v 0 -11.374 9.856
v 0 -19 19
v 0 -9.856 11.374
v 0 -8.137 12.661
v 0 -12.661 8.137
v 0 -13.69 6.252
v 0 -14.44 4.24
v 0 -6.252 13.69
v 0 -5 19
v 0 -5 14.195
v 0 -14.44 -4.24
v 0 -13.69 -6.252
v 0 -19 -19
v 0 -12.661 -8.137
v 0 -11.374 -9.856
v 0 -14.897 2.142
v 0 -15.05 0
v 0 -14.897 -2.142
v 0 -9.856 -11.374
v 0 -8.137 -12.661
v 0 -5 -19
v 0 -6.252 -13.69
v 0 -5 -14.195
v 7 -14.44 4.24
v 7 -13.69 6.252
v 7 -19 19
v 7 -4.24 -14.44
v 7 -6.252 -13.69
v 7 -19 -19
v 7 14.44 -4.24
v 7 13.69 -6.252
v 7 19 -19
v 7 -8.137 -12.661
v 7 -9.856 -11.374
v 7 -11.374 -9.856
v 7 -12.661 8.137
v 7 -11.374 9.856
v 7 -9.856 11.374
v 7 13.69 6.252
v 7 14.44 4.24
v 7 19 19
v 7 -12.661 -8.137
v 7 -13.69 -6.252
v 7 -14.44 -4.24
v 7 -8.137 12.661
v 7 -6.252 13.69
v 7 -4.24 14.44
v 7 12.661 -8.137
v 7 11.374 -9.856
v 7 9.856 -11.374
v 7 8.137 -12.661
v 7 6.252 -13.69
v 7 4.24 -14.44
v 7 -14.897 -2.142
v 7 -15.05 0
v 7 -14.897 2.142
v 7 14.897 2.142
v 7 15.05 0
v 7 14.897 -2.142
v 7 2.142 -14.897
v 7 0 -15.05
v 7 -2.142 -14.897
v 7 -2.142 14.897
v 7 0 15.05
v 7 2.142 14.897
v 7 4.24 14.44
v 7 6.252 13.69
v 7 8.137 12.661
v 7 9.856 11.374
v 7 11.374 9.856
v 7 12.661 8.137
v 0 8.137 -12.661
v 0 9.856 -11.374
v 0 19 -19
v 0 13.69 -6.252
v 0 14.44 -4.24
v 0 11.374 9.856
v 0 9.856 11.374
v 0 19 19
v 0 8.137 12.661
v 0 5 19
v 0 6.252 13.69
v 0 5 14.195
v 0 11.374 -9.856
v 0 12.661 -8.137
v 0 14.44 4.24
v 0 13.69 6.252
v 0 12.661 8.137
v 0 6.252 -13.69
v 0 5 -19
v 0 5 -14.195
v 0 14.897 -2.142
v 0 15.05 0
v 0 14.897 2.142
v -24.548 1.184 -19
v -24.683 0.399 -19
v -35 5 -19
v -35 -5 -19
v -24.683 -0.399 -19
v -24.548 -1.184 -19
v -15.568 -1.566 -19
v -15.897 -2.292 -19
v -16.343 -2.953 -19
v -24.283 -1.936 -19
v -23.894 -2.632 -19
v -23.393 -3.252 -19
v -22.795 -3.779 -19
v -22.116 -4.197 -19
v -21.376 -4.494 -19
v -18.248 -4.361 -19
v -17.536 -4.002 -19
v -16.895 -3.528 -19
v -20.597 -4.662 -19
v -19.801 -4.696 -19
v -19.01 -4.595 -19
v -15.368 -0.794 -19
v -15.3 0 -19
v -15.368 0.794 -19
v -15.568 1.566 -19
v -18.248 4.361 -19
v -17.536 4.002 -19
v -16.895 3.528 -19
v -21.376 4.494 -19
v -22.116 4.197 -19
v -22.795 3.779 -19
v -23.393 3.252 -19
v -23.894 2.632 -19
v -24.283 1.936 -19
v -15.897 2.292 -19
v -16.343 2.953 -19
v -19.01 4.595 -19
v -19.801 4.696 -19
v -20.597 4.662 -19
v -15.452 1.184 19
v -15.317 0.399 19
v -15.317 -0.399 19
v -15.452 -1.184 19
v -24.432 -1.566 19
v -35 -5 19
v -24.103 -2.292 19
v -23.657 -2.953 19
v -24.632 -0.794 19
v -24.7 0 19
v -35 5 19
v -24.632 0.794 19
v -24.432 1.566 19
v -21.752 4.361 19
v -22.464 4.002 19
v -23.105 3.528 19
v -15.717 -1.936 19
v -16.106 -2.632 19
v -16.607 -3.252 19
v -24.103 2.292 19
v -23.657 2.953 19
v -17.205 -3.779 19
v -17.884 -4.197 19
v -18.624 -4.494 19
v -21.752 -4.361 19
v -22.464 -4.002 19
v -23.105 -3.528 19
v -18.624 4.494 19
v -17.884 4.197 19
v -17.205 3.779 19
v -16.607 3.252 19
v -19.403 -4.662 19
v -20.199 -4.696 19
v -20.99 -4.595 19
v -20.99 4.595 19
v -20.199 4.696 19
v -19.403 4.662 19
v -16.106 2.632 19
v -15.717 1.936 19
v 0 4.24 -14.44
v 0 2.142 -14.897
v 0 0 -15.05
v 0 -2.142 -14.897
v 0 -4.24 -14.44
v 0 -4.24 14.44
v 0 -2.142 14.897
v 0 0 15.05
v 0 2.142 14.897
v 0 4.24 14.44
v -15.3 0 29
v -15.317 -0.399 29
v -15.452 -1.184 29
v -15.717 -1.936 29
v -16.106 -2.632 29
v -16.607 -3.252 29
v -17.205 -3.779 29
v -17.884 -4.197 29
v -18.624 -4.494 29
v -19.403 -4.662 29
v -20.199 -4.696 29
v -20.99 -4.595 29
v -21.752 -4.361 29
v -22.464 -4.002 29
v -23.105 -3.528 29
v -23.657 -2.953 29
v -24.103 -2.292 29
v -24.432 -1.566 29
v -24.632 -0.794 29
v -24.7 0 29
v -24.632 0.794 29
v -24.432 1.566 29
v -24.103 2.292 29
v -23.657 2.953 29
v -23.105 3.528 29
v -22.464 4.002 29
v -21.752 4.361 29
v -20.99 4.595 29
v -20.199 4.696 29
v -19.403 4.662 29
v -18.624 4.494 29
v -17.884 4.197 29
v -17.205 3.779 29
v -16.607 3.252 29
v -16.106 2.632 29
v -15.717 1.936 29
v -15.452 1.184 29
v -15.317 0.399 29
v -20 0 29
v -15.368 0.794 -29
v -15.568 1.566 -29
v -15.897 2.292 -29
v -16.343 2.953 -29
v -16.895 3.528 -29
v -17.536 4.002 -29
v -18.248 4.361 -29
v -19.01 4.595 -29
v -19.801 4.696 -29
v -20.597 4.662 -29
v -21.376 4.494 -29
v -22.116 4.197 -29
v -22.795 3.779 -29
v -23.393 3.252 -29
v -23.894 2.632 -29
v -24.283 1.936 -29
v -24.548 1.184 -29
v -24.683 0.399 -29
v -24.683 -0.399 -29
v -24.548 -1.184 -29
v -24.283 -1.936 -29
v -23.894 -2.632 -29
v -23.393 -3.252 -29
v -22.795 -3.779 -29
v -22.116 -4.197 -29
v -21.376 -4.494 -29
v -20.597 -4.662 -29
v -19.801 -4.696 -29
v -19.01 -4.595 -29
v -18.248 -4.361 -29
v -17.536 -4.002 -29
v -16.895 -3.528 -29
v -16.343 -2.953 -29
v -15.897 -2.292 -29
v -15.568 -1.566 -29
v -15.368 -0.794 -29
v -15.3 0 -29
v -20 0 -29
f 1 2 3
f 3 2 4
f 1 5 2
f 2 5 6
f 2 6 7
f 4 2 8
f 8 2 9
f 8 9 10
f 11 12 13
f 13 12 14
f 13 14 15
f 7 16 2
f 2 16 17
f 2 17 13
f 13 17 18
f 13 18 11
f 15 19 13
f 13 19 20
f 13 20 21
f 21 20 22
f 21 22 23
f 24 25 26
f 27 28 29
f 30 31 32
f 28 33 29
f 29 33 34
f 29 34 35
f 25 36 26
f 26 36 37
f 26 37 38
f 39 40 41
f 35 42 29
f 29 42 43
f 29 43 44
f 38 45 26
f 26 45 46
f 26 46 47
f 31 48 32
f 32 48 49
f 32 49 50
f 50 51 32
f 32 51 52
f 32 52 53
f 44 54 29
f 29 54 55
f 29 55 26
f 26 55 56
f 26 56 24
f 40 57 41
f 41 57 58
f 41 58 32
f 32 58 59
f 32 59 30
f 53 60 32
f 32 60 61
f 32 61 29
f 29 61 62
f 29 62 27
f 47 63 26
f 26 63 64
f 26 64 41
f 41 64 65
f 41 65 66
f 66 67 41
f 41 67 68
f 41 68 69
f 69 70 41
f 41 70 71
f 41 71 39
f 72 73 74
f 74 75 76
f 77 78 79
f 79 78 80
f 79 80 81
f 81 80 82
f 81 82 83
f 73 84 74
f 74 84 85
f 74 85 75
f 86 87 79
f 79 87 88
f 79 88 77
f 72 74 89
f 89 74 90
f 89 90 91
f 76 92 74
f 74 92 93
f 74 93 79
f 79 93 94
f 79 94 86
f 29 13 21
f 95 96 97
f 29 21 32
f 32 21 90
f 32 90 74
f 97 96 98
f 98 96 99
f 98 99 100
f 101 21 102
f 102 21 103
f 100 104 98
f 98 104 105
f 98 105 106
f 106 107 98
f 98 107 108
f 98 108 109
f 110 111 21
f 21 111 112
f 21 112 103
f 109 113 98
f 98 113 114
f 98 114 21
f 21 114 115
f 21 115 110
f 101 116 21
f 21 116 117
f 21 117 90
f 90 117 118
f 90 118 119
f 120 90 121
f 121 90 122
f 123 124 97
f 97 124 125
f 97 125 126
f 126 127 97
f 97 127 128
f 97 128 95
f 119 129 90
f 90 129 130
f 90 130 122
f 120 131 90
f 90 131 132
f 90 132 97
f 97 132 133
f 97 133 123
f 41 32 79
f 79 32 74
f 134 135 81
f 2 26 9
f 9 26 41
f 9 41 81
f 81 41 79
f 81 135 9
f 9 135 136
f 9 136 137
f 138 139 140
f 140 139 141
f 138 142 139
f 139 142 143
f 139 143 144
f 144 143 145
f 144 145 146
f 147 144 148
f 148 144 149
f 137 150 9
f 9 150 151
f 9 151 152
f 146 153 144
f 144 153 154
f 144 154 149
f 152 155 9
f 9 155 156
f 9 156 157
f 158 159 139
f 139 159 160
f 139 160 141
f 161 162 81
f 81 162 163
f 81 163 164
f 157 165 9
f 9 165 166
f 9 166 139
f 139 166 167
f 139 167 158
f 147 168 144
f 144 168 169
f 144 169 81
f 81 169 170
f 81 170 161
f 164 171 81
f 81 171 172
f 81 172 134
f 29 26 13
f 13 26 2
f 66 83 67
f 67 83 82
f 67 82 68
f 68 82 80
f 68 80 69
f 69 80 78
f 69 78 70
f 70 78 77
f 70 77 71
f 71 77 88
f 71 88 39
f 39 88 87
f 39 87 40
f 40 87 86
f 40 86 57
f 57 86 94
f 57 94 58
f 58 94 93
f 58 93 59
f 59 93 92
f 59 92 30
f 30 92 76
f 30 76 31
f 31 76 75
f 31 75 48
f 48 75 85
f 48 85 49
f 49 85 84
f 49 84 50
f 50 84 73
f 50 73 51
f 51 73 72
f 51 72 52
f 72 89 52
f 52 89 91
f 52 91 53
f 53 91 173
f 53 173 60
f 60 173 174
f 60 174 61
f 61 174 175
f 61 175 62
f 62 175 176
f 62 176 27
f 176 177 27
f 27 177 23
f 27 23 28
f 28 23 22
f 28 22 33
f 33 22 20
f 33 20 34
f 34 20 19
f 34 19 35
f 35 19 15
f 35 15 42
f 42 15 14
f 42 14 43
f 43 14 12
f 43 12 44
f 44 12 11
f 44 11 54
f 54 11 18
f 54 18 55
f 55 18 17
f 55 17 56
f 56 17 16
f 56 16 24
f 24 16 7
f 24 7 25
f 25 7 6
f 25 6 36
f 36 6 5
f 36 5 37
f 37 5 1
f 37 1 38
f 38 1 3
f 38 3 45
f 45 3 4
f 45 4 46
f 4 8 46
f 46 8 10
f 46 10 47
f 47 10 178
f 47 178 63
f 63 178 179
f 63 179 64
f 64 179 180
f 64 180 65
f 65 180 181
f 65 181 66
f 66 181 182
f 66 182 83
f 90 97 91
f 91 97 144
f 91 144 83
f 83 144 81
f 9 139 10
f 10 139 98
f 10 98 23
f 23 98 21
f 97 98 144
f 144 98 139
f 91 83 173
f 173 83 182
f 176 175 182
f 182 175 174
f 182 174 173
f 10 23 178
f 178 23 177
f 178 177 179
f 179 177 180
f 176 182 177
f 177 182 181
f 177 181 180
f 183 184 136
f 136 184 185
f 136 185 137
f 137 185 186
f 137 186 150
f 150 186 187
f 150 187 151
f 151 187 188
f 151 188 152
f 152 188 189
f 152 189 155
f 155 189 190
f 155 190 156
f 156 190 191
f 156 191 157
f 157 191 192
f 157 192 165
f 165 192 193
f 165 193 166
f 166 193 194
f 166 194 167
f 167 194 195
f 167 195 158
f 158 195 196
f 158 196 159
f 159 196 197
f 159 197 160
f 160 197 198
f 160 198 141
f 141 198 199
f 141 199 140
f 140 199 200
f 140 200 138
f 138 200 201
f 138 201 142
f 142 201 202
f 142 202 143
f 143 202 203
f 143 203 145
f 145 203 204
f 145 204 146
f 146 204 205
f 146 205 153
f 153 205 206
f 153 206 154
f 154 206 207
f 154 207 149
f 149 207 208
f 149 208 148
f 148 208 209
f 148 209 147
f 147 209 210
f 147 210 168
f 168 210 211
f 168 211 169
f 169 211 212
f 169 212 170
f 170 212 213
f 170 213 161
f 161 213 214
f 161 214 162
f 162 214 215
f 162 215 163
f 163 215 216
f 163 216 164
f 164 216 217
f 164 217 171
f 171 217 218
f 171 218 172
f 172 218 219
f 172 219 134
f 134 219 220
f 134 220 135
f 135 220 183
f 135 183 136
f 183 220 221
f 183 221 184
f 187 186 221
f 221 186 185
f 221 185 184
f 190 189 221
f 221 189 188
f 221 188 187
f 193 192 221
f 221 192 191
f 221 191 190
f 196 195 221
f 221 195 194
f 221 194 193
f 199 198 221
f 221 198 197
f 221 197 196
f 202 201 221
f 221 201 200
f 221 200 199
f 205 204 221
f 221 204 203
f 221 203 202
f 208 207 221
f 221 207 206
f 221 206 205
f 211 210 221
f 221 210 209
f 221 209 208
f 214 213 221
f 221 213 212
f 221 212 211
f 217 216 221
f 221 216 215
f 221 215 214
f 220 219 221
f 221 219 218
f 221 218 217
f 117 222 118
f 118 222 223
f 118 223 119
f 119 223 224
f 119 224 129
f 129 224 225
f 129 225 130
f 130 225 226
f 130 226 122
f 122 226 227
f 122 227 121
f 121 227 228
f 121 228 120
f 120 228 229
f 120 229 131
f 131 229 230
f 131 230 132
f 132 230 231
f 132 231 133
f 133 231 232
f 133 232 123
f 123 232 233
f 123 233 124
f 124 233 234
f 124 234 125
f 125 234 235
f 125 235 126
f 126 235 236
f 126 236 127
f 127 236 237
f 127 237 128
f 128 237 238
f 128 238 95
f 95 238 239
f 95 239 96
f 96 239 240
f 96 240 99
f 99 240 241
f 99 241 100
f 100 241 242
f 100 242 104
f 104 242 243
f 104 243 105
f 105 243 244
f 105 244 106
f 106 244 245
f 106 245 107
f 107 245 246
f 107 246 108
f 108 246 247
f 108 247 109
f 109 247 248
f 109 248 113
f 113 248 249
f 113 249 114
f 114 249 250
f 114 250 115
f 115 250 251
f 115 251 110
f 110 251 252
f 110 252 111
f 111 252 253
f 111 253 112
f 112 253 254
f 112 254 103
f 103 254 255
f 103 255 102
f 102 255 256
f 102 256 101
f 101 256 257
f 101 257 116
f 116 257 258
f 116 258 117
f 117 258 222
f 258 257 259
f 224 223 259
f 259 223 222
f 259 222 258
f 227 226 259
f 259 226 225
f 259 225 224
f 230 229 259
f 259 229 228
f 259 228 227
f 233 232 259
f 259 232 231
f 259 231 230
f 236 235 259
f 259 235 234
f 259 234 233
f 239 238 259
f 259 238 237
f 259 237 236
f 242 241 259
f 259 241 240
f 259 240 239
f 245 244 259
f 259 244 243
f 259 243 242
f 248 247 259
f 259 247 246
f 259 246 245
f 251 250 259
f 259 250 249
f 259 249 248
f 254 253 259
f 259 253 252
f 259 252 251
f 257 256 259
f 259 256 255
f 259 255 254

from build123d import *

# Parameters (mm, degrees)
SKETCH1_W           = 38
SKETCH1_H           = 38
SKETCH1_R           = 15.05
BOSS_EXTRUDE1_DEPTH = 7
SKETCH2_W           = 38
SKETCH2_H           = 10
BOSS_EXTRUDE2_DEPTH = 35
SKETCH3_R           = 4.7
BOSS_EXTRUDE3_DEPTH = 10


with BuildPart() as part:
    # Sketch1 → Boss-Extrude1 (new body)
    with BuildSketch(Plane(origin=(0, 0, 0), x_dir=(0, 0, -1), z_dir=(1, 0, 0))):
        Rectangle(SKETCH1_W, SKETCH1_H)
        Circle(SKETCH1_R, mode=Mode.SUBTRACT)
    extrude(amount=BOSS_EXTRUDE1_DEPTH)

    # Sketch2 → Boss-Extrude2 (add)
    with BuildSketch(Plane.ZY):
        Rectangle(SKETCH2_W, SKETCH2_H)
    extrude(amount=BOSS_EXTRUDE2_DEPTH)

    # Sketch3 → Boss-Extrude3 (add)
    with BuildSketch(Plane.XY.offset(19)):
        with Locations(Location((-20, 0, 0), (0, 0, 180))):
            Circle(SKETCH3_R)
    boss_extrude3 = extrude(amount=BOSS_EXTRUDE3_DEPTH)

    # Mirror1: Boss-Extrude3 across plane
    add(boss_extrude3.mirror(Plane.XY))


solid = part.part
